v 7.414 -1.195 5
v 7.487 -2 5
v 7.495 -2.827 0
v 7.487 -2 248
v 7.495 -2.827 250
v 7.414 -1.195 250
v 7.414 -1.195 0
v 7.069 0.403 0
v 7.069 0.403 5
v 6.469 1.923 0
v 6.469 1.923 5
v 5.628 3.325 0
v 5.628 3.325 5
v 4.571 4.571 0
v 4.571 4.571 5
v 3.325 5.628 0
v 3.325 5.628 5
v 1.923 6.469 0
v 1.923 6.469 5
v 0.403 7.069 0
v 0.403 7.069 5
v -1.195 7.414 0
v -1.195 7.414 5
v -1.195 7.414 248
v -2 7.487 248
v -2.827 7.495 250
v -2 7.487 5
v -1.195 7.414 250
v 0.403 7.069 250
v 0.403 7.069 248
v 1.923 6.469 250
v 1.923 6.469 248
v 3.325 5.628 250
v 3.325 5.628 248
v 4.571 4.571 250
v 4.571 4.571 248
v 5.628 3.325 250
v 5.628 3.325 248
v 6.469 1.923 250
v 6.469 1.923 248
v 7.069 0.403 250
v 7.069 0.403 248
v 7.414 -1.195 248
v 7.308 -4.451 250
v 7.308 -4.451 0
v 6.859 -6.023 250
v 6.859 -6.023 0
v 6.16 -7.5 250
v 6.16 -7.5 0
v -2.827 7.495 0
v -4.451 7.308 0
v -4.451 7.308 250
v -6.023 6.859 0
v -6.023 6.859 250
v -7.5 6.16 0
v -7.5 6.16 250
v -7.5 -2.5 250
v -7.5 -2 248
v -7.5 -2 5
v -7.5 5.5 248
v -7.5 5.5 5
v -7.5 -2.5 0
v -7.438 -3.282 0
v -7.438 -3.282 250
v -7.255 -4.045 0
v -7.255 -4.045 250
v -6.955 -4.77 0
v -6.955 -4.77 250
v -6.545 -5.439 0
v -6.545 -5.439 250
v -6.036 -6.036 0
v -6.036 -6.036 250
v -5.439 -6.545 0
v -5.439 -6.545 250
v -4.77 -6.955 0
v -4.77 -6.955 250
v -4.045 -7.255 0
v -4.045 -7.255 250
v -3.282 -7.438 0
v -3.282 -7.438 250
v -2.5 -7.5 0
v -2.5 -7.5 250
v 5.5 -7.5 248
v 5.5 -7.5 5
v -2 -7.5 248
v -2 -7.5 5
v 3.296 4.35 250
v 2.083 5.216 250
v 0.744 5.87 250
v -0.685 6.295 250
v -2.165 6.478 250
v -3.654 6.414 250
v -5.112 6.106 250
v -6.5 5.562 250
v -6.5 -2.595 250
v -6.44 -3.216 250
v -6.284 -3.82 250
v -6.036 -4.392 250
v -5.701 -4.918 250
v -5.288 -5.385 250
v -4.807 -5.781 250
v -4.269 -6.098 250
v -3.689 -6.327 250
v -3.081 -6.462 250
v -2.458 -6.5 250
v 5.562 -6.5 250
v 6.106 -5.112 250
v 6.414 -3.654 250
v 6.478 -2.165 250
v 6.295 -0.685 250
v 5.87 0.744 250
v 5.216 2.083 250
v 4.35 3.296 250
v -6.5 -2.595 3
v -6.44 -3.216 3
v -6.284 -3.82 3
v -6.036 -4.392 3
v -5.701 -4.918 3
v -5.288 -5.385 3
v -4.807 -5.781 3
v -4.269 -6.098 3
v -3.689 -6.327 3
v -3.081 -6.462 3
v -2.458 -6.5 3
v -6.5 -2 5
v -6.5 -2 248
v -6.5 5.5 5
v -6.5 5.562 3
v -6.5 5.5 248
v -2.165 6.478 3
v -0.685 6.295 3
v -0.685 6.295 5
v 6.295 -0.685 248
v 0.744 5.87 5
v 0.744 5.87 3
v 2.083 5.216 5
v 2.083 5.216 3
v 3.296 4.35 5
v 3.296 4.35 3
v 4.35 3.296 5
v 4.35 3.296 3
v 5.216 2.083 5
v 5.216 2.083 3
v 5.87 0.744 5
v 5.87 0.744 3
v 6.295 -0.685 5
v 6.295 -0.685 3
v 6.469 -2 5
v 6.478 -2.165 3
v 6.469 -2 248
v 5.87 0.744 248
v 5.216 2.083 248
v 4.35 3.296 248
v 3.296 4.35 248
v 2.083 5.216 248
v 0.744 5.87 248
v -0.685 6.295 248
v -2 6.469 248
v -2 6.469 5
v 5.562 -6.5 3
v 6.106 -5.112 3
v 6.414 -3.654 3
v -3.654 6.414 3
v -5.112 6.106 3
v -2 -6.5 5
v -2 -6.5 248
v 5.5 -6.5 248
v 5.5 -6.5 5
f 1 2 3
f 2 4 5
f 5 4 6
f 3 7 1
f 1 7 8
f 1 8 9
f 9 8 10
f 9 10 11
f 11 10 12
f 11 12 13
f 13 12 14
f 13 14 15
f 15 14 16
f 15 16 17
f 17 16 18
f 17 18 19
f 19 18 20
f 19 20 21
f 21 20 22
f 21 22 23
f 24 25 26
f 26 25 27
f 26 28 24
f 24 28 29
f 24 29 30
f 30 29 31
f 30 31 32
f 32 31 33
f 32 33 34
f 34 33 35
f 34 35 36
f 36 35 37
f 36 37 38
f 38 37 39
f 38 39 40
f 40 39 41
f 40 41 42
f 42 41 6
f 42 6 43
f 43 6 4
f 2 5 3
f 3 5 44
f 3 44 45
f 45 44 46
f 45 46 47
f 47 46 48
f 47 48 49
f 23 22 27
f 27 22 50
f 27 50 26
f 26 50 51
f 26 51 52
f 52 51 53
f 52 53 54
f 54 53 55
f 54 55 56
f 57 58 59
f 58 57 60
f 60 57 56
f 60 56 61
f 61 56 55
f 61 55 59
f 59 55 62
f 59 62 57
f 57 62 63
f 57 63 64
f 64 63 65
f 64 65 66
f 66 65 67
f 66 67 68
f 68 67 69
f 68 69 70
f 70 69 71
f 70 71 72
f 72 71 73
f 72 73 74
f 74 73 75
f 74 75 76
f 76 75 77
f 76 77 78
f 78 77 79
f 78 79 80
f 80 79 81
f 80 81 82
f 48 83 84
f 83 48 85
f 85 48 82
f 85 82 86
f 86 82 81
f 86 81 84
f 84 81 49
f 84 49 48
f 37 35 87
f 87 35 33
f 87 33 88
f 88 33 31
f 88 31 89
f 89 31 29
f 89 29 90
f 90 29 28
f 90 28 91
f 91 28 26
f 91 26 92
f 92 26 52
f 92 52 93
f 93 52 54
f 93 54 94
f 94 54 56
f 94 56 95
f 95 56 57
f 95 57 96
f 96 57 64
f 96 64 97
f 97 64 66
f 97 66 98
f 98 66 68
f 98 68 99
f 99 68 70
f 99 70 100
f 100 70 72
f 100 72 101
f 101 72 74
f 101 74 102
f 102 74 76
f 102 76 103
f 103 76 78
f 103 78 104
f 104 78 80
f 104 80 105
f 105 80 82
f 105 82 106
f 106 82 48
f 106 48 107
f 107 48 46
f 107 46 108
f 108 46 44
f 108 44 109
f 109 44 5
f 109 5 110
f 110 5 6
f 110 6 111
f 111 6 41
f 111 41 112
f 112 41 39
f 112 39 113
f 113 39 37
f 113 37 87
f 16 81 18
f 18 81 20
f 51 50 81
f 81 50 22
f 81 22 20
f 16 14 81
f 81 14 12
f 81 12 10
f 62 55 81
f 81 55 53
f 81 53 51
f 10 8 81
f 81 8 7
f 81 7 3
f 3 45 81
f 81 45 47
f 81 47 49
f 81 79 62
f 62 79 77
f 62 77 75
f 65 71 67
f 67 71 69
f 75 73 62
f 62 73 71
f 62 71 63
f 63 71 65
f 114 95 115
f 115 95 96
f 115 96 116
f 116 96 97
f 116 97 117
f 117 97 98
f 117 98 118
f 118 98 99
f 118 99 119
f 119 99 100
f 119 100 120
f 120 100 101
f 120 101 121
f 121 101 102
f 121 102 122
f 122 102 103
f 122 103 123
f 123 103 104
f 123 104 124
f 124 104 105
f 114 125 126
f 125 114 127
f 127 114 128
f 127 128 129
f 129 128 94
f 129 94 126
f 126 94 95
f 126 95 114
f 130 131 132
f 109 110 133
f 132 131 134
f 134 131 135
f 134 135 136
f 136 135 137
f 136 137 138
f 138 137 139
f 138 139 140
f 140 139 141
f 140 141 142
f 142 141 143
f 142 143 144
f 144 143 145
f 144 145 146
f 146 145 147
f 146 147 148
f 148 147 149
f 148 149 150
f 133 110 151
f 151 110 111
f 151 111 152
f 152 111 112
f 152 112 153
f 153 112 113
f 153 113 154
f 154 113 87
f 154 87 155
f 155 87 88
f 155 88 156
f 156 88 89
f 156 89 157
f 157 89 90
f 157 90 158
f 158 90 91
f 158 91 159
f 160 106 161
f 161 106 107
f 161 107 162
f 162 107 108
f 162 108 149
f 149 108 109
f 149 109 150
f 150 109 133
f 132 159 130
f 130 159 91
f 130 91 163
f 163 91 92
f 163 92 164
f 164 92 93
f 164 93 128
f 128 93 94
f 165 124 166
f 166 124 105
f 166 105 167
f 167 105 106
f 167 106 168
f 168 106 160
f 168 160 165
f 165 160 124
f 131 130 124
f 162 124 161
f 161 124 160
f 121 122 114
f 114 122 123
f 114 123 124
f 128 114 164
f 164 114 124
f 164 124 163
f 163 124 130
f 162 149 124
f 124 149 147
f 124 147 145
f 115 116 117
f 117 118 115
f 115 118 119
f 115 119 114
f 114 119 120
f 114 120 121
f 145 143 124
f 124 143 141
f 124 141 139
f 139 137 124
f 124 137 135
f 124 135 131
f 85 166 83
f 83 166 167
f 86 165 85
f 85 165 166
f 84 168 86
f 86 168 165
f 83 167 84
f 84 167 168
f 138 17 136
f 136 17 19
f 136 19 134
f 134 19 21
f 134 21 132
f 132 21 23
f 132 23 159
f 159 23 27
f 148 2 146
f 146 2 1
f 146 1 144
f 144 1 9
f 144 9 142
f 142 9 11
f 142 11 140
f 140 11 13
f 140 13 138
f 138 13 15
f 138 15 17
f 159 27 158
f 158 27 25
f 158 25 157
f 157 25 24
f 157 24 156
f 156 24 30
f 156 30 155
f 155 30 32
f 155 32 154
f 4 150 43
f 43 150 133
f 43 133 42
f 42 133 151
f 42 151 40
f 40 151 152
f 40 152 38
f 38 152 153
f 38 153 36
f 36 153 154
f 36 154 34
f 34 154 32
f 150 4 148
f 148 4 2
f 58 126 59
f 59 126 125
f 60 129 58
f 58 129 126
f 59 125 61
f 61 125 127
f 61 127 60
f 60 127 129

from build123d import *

# Parameters (mm, degrees)
RESSALTO_EXTRUS_O1_DEPTH = 250
CORTE_EXTRUS_O1_DEPTH    = 247
ESBO_O4_W                = 7.5
ESBO_O4_H                = 243
CORTE_EXTRUS_O2_DEPTH    = 245
ESBO_O5_W                = 243
ESBO_O5_H                = 7.5
CORTE_EXTRUS_O3_DEPTH    = 245


with BuildPart() as part:
    # Esboço2 → Ressalto-extrusão1 (new body)
    with BuildSketch(Plane.XY):
        with BuildLine():
            Line((-7.5, 6.160254038), (-7.5, -2.5))
            ThreePointArc((-7.5, -2.5), (-6.035533906, -6.035533906), (-2.5, -7.5))
            Line((-2.5, -7.5), (6.160254038, -7.5))
            ThreePointArc((6.160254038, -7.5), (4.571067812, 4.571067812), (-7.5, 6.160254038))
        make_face()
    extrude(amount=RESSALTO_EXTRUS_O1_DEPTH)

    # Esboço3 → Corte-extrusão1 (cut)
    with BuildSketch(Plane.XY.offset(250)):
        with BuildLine():
            Line((-6.5, 5.562257748), (-6.5, -2.595115556))
            ThreePointArc((-6.5, -2.595115556), (-5.287772695, -5.384664894), (-2.458089295, -6.5))
            Line((-2.458089295, -6.5), (0.796633642, -6.5))
            Line((0.796633642, -6.5), (5.562257748, -6.5))
            ThreePointArc((5.562257748, -6.5), (3.845180245, 3.845180245), (-6.5, 5.562257748))
        make_face()
    extrude(amount=-CORTE_EXTRUS_O1_DEPTH, mode=Mode.SUBTRACT)

    # Esboço4 → Corte-extrusão2 (cut)
    with BuildSketch(Plane.XZ.offset(7.5)):
        with Locations((1.75, 126.5)):
            Rectangle(ESBO_O4_W, ESBO_O4_H)
    extrude(amount=-CORTE_EXTRUS_O2_DEPTH, mode=Mode.SUBTRACT)

    # Esboço5 → Corte-extrusão3 (cut)
    with BuildSketch(Plane.ZY.offset(7.5)):
        with Locations((126.5, 1.75)):
            Rectangle(ESBO_O5_W, ESBO_O5_H)
    extrude(amount=-CORTE_EXTRUS_O3_DEPTH, mode=Mode.SUBTRACT)


solid = part.part
